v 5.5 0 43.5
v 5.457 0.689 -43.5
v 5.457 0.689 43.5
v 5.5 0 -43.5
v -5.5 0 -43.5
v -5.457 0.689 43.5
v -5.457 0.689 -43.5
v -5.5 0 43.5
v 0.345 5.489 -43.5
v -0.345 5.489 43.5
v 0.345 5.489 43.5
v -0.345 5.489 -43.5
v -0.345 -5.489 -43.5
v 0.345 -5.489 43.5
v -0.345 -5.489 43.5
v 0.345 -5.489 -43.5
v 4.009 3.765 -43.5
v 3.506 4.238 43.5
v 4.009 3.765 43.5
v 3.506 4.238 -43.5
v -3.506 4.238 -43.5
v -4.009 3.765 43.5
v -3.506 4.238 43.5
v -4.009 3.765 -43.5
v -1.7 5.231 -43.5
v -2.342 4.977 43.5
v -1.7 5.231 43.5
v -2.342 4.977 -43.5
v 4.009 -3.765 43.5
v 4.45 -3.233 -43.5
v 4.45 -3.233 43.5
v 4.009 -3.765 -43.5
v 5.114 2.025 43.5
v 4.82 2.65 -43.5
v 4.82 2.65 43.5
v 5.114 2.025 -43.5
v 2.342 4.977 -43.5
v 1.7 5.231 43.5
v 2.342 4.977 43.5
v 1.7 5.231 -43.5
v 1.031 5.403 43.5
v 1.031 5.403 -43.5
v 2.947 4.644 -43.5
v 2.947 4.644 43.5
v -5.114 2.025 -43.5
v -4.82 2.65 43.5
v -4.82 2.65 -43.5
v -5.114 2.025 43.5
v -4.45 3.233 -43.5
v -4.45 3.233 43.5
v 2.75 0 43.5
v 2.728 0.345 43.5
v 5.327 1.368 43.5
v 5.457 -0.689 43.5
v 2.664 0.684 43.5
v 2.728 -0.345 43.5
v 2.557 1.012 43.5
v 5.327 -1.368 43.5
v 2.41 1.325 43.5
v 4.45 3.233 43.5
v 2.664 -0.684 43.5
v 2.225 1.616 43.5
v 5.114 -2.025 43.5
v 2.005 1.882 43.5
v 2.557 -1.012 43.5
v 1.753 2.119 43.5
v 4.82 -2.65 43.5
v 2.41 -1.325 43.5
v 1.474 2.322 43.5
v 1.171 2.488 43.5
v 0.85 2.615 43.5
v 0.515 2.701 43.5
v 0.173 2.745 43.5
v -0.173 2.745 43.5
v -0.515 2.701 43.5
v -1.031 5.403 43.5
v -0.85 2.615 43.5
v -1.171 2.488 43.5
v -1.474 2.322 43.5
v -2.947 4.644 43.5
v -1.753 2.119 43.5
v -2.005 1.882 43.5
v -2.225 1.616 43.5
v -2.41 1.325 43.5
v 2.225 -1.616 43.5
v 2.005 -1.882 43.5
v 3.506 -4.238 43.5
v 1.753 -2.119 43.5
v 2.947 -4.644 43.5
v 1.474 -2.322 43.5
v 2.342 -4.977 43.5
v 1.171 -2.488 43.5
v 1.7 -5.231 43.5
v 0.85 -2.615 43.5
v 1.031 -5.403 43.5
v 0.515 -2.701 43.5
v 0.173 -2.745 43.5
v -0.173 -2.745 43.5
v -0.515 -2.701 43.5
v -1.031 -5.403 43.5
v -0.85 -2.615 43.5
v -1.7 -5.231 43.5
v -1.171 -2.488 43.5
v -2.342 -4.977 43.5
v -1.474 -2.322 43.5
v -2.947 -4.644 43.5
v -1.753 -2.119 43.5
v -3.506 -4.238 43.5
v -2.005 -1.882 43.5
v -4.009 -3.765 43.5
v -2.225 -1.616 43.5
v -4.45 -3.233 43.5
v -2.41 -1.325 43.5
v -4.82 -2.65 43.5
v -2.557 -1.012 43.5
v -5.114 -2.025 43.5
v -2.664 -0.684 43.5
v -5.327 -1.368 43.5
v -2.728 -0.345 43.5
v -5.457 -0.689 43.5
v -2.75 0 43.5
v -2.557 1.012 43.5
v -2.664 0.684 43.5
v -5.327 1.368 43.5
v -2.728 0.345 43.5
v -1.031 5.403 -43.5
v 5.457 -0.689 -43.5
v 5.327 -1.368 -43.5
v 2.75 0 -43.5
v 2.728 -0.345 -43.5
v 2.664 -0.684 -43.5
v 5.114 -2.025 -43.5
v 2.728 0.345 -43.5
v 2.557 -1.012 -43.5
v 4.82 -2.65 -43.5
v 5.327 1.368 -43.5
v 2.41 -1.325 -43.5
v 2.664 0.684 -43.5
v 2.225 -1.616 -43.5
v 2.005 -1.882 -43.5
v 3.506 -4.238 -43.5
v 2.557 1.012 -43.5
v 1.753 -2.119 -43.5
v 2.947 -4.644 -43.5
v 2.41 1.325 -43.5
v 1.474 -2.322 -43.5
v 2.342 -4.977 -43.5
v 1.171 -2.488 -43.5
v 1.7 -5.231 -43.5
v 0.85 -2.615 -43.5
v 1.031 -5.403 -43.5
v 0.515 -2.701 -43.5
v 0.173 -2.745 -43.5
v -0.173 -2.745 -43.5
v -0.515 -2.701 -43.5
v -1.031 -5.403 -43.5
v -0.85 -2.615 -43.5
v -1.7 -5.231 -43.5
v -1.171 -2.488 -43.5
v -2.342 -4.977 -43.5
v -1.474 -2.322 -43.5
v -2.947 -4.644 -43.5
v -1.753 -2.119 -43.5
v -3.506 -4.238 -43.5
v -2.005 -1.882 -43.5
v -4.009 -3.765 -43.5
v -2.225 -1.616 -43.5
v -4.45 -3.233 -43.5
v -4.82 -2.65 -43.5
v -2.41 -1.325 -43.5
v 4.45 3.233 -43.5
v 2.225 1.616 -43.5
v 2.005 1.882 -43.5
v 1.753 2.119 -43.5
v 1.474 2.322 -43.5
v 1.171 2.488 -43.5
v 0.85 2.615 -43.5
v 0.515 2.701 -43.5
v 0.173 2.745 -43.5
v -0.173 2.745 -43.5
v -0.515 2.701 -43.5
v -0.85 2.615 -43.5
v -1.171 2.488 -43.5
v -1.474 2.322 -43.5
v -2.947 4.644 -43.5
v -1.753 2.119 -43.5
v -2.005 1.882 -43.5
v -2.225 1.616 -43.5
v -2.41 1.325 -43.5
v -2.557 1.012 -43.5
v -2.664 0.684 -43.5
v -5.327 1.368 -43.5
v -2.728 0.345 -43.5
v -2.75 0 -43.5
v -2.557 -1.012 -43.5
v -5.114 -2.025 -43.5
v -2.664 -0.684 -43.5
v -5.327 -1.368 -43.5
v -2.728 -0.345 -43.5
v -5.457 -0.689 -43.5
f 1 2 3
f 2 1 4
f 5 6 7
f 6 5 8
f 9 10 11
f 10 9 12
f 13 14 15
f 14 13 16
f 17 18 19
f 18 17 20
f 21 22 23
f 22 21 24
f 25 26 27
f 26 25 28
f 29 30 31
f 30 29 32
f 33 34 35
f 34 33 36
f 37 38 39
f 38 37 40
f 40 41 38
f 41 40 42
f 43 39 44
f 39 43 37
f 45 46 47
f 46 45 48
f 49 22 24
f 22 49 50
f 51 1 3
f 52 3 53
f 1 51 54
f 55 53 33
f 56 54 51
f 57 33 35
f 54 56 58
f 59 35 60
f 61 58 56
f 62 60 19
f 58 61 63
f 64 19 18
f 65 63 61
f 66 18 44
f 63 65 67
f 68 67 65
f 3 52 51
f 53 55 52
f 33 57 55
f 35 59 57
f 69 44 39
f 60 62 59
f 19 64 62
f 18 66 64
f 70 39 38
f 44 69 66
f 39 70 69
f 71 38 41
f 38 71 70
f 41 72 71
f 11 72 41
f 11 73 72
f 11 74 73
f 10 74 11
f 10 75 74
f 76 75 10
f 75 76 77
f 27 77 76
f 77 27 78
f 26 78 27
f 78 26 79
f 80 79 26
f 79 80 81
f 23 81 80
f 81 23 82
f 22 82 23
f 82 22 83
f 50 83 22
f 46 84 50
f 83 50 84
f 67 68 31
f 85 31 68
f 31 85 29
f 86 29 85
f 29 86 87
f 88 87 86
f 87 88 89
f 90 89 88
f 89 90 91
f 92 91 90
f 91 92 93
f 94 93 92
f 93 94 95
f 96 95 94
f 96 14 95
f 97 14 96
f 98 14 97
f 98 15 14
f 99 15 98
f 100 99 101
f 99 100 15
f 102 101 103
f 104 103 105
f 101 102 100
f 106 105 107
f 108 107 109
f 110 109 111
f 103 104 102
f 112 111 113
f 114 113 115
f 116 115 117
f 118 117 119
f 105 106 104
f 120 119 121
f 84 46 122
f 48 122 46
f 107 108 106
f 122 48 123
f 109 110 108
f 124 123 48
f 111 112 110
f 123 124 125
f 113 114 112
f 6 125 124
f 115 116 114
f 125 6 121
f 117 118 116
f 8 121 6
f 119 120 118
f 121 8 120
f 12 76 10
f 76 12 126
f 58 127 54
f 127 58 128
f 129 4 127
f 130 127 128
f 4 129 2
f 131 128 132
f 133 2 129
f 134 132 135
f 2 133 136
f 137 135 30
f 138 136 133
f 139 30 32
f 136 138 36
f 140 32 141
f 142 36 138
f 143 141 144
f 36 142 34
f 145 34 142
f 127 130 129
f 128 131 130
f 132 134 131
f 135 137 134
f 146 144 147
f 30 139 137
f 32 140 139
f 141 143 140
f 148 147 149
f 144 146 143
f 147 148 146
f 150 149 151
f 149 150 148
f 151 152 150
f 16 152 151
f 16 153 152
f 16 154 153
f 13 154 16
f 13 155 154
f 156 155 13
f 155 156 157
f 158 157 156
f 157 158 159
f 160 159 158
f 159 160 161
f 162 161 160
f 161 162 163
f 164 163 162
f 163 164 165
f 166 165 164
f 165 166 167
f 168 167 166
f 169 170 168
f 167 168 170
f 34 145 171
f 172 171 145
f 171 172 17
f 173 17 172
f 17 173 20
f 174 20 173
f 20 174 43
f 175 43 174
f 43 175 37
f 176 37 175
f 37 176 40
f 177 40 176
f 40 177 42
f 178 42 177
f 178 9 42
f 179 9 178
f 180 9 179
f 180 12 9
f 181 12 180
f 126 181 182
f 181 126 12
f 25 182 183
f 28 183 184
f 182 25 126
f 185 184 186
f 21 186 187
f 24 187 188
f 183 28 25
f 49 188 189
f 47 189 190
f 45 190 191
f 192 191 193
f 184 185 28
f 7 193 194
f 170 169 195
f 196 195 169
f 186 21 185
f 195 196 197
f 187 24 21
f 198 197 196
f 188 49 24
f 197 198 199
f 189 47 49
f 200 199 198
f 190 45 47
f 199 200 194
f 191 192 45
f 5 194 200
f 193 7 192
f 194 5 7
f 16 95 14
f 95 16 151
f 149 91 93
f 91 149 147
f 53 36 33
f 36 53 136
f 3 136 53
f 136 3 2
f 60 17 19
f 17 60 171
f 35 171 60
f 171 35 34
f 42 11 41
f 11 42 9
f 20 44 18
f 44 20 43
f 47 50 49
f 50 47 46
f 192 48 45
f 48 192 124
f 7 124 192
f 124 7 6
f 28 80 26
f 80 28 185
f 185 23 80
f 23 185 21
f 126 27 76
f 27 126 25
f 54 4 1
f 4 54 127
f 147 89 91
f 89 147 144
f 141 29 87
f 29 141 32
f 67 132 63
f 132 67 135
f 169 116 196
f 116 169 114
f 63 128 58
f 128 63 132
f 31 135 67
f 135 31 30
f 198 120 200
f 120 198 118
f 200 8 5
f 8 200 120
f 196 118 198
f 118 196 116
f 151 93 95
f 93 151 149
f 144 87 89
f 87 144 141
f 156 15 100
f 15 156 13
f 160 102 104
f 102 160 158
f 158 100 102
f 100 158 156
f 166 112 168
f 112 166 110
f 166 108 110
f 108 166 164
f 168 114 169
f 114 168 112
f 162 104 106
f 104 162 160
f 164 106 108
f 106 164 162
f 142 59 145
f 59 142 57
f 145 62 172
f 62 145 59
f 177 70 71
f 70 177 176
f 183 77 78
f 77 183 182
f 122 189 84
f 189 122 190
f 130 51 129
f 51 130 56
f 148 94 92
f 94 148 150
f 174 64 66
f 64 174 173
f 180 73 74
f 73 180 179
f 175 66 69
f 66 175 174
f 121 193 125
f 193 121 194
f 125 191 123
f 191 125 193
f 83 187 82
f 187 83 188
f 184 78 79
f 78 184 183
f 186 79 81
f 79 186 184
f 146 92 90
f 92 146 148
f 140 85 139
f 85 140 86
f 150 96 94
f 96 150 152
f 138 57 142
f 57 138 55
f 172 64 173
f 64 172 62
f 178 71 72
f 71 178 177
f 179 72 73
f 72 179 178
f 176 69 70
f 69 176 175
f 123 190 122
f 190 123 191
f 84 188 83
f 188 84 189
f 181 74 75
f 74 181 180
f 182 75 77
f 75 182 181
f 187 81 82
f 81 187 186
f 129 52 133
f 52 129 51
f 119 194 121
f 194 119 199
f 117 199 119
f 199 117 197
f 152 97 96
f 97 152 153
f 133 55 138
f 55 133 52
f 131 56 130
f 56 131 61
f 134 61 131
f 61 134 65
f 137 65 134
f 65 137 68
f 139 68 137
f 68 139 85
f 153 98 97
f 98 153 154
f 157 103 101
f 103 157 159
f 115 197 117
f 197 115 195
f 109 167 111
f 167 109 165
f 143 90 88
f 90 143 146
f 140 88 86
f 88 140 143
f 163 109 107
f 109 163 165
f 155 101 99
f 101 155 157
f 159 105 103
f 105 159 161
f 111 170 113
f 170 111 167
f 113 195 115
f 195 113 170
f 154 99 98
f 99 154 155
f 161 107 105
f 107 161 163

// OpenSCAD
$fn = 50;


difference() {
	union() {
		translate(v = [0, 0, -43.5000000000]) {
			cylinder(h = 87, r = 5.5000000000);
		}
	}
	union() {
		translate(v = [0, 0, -100.0000000000]) {
			cylinder(h = 200, r = 2.7500000000);
		}
	}
}
